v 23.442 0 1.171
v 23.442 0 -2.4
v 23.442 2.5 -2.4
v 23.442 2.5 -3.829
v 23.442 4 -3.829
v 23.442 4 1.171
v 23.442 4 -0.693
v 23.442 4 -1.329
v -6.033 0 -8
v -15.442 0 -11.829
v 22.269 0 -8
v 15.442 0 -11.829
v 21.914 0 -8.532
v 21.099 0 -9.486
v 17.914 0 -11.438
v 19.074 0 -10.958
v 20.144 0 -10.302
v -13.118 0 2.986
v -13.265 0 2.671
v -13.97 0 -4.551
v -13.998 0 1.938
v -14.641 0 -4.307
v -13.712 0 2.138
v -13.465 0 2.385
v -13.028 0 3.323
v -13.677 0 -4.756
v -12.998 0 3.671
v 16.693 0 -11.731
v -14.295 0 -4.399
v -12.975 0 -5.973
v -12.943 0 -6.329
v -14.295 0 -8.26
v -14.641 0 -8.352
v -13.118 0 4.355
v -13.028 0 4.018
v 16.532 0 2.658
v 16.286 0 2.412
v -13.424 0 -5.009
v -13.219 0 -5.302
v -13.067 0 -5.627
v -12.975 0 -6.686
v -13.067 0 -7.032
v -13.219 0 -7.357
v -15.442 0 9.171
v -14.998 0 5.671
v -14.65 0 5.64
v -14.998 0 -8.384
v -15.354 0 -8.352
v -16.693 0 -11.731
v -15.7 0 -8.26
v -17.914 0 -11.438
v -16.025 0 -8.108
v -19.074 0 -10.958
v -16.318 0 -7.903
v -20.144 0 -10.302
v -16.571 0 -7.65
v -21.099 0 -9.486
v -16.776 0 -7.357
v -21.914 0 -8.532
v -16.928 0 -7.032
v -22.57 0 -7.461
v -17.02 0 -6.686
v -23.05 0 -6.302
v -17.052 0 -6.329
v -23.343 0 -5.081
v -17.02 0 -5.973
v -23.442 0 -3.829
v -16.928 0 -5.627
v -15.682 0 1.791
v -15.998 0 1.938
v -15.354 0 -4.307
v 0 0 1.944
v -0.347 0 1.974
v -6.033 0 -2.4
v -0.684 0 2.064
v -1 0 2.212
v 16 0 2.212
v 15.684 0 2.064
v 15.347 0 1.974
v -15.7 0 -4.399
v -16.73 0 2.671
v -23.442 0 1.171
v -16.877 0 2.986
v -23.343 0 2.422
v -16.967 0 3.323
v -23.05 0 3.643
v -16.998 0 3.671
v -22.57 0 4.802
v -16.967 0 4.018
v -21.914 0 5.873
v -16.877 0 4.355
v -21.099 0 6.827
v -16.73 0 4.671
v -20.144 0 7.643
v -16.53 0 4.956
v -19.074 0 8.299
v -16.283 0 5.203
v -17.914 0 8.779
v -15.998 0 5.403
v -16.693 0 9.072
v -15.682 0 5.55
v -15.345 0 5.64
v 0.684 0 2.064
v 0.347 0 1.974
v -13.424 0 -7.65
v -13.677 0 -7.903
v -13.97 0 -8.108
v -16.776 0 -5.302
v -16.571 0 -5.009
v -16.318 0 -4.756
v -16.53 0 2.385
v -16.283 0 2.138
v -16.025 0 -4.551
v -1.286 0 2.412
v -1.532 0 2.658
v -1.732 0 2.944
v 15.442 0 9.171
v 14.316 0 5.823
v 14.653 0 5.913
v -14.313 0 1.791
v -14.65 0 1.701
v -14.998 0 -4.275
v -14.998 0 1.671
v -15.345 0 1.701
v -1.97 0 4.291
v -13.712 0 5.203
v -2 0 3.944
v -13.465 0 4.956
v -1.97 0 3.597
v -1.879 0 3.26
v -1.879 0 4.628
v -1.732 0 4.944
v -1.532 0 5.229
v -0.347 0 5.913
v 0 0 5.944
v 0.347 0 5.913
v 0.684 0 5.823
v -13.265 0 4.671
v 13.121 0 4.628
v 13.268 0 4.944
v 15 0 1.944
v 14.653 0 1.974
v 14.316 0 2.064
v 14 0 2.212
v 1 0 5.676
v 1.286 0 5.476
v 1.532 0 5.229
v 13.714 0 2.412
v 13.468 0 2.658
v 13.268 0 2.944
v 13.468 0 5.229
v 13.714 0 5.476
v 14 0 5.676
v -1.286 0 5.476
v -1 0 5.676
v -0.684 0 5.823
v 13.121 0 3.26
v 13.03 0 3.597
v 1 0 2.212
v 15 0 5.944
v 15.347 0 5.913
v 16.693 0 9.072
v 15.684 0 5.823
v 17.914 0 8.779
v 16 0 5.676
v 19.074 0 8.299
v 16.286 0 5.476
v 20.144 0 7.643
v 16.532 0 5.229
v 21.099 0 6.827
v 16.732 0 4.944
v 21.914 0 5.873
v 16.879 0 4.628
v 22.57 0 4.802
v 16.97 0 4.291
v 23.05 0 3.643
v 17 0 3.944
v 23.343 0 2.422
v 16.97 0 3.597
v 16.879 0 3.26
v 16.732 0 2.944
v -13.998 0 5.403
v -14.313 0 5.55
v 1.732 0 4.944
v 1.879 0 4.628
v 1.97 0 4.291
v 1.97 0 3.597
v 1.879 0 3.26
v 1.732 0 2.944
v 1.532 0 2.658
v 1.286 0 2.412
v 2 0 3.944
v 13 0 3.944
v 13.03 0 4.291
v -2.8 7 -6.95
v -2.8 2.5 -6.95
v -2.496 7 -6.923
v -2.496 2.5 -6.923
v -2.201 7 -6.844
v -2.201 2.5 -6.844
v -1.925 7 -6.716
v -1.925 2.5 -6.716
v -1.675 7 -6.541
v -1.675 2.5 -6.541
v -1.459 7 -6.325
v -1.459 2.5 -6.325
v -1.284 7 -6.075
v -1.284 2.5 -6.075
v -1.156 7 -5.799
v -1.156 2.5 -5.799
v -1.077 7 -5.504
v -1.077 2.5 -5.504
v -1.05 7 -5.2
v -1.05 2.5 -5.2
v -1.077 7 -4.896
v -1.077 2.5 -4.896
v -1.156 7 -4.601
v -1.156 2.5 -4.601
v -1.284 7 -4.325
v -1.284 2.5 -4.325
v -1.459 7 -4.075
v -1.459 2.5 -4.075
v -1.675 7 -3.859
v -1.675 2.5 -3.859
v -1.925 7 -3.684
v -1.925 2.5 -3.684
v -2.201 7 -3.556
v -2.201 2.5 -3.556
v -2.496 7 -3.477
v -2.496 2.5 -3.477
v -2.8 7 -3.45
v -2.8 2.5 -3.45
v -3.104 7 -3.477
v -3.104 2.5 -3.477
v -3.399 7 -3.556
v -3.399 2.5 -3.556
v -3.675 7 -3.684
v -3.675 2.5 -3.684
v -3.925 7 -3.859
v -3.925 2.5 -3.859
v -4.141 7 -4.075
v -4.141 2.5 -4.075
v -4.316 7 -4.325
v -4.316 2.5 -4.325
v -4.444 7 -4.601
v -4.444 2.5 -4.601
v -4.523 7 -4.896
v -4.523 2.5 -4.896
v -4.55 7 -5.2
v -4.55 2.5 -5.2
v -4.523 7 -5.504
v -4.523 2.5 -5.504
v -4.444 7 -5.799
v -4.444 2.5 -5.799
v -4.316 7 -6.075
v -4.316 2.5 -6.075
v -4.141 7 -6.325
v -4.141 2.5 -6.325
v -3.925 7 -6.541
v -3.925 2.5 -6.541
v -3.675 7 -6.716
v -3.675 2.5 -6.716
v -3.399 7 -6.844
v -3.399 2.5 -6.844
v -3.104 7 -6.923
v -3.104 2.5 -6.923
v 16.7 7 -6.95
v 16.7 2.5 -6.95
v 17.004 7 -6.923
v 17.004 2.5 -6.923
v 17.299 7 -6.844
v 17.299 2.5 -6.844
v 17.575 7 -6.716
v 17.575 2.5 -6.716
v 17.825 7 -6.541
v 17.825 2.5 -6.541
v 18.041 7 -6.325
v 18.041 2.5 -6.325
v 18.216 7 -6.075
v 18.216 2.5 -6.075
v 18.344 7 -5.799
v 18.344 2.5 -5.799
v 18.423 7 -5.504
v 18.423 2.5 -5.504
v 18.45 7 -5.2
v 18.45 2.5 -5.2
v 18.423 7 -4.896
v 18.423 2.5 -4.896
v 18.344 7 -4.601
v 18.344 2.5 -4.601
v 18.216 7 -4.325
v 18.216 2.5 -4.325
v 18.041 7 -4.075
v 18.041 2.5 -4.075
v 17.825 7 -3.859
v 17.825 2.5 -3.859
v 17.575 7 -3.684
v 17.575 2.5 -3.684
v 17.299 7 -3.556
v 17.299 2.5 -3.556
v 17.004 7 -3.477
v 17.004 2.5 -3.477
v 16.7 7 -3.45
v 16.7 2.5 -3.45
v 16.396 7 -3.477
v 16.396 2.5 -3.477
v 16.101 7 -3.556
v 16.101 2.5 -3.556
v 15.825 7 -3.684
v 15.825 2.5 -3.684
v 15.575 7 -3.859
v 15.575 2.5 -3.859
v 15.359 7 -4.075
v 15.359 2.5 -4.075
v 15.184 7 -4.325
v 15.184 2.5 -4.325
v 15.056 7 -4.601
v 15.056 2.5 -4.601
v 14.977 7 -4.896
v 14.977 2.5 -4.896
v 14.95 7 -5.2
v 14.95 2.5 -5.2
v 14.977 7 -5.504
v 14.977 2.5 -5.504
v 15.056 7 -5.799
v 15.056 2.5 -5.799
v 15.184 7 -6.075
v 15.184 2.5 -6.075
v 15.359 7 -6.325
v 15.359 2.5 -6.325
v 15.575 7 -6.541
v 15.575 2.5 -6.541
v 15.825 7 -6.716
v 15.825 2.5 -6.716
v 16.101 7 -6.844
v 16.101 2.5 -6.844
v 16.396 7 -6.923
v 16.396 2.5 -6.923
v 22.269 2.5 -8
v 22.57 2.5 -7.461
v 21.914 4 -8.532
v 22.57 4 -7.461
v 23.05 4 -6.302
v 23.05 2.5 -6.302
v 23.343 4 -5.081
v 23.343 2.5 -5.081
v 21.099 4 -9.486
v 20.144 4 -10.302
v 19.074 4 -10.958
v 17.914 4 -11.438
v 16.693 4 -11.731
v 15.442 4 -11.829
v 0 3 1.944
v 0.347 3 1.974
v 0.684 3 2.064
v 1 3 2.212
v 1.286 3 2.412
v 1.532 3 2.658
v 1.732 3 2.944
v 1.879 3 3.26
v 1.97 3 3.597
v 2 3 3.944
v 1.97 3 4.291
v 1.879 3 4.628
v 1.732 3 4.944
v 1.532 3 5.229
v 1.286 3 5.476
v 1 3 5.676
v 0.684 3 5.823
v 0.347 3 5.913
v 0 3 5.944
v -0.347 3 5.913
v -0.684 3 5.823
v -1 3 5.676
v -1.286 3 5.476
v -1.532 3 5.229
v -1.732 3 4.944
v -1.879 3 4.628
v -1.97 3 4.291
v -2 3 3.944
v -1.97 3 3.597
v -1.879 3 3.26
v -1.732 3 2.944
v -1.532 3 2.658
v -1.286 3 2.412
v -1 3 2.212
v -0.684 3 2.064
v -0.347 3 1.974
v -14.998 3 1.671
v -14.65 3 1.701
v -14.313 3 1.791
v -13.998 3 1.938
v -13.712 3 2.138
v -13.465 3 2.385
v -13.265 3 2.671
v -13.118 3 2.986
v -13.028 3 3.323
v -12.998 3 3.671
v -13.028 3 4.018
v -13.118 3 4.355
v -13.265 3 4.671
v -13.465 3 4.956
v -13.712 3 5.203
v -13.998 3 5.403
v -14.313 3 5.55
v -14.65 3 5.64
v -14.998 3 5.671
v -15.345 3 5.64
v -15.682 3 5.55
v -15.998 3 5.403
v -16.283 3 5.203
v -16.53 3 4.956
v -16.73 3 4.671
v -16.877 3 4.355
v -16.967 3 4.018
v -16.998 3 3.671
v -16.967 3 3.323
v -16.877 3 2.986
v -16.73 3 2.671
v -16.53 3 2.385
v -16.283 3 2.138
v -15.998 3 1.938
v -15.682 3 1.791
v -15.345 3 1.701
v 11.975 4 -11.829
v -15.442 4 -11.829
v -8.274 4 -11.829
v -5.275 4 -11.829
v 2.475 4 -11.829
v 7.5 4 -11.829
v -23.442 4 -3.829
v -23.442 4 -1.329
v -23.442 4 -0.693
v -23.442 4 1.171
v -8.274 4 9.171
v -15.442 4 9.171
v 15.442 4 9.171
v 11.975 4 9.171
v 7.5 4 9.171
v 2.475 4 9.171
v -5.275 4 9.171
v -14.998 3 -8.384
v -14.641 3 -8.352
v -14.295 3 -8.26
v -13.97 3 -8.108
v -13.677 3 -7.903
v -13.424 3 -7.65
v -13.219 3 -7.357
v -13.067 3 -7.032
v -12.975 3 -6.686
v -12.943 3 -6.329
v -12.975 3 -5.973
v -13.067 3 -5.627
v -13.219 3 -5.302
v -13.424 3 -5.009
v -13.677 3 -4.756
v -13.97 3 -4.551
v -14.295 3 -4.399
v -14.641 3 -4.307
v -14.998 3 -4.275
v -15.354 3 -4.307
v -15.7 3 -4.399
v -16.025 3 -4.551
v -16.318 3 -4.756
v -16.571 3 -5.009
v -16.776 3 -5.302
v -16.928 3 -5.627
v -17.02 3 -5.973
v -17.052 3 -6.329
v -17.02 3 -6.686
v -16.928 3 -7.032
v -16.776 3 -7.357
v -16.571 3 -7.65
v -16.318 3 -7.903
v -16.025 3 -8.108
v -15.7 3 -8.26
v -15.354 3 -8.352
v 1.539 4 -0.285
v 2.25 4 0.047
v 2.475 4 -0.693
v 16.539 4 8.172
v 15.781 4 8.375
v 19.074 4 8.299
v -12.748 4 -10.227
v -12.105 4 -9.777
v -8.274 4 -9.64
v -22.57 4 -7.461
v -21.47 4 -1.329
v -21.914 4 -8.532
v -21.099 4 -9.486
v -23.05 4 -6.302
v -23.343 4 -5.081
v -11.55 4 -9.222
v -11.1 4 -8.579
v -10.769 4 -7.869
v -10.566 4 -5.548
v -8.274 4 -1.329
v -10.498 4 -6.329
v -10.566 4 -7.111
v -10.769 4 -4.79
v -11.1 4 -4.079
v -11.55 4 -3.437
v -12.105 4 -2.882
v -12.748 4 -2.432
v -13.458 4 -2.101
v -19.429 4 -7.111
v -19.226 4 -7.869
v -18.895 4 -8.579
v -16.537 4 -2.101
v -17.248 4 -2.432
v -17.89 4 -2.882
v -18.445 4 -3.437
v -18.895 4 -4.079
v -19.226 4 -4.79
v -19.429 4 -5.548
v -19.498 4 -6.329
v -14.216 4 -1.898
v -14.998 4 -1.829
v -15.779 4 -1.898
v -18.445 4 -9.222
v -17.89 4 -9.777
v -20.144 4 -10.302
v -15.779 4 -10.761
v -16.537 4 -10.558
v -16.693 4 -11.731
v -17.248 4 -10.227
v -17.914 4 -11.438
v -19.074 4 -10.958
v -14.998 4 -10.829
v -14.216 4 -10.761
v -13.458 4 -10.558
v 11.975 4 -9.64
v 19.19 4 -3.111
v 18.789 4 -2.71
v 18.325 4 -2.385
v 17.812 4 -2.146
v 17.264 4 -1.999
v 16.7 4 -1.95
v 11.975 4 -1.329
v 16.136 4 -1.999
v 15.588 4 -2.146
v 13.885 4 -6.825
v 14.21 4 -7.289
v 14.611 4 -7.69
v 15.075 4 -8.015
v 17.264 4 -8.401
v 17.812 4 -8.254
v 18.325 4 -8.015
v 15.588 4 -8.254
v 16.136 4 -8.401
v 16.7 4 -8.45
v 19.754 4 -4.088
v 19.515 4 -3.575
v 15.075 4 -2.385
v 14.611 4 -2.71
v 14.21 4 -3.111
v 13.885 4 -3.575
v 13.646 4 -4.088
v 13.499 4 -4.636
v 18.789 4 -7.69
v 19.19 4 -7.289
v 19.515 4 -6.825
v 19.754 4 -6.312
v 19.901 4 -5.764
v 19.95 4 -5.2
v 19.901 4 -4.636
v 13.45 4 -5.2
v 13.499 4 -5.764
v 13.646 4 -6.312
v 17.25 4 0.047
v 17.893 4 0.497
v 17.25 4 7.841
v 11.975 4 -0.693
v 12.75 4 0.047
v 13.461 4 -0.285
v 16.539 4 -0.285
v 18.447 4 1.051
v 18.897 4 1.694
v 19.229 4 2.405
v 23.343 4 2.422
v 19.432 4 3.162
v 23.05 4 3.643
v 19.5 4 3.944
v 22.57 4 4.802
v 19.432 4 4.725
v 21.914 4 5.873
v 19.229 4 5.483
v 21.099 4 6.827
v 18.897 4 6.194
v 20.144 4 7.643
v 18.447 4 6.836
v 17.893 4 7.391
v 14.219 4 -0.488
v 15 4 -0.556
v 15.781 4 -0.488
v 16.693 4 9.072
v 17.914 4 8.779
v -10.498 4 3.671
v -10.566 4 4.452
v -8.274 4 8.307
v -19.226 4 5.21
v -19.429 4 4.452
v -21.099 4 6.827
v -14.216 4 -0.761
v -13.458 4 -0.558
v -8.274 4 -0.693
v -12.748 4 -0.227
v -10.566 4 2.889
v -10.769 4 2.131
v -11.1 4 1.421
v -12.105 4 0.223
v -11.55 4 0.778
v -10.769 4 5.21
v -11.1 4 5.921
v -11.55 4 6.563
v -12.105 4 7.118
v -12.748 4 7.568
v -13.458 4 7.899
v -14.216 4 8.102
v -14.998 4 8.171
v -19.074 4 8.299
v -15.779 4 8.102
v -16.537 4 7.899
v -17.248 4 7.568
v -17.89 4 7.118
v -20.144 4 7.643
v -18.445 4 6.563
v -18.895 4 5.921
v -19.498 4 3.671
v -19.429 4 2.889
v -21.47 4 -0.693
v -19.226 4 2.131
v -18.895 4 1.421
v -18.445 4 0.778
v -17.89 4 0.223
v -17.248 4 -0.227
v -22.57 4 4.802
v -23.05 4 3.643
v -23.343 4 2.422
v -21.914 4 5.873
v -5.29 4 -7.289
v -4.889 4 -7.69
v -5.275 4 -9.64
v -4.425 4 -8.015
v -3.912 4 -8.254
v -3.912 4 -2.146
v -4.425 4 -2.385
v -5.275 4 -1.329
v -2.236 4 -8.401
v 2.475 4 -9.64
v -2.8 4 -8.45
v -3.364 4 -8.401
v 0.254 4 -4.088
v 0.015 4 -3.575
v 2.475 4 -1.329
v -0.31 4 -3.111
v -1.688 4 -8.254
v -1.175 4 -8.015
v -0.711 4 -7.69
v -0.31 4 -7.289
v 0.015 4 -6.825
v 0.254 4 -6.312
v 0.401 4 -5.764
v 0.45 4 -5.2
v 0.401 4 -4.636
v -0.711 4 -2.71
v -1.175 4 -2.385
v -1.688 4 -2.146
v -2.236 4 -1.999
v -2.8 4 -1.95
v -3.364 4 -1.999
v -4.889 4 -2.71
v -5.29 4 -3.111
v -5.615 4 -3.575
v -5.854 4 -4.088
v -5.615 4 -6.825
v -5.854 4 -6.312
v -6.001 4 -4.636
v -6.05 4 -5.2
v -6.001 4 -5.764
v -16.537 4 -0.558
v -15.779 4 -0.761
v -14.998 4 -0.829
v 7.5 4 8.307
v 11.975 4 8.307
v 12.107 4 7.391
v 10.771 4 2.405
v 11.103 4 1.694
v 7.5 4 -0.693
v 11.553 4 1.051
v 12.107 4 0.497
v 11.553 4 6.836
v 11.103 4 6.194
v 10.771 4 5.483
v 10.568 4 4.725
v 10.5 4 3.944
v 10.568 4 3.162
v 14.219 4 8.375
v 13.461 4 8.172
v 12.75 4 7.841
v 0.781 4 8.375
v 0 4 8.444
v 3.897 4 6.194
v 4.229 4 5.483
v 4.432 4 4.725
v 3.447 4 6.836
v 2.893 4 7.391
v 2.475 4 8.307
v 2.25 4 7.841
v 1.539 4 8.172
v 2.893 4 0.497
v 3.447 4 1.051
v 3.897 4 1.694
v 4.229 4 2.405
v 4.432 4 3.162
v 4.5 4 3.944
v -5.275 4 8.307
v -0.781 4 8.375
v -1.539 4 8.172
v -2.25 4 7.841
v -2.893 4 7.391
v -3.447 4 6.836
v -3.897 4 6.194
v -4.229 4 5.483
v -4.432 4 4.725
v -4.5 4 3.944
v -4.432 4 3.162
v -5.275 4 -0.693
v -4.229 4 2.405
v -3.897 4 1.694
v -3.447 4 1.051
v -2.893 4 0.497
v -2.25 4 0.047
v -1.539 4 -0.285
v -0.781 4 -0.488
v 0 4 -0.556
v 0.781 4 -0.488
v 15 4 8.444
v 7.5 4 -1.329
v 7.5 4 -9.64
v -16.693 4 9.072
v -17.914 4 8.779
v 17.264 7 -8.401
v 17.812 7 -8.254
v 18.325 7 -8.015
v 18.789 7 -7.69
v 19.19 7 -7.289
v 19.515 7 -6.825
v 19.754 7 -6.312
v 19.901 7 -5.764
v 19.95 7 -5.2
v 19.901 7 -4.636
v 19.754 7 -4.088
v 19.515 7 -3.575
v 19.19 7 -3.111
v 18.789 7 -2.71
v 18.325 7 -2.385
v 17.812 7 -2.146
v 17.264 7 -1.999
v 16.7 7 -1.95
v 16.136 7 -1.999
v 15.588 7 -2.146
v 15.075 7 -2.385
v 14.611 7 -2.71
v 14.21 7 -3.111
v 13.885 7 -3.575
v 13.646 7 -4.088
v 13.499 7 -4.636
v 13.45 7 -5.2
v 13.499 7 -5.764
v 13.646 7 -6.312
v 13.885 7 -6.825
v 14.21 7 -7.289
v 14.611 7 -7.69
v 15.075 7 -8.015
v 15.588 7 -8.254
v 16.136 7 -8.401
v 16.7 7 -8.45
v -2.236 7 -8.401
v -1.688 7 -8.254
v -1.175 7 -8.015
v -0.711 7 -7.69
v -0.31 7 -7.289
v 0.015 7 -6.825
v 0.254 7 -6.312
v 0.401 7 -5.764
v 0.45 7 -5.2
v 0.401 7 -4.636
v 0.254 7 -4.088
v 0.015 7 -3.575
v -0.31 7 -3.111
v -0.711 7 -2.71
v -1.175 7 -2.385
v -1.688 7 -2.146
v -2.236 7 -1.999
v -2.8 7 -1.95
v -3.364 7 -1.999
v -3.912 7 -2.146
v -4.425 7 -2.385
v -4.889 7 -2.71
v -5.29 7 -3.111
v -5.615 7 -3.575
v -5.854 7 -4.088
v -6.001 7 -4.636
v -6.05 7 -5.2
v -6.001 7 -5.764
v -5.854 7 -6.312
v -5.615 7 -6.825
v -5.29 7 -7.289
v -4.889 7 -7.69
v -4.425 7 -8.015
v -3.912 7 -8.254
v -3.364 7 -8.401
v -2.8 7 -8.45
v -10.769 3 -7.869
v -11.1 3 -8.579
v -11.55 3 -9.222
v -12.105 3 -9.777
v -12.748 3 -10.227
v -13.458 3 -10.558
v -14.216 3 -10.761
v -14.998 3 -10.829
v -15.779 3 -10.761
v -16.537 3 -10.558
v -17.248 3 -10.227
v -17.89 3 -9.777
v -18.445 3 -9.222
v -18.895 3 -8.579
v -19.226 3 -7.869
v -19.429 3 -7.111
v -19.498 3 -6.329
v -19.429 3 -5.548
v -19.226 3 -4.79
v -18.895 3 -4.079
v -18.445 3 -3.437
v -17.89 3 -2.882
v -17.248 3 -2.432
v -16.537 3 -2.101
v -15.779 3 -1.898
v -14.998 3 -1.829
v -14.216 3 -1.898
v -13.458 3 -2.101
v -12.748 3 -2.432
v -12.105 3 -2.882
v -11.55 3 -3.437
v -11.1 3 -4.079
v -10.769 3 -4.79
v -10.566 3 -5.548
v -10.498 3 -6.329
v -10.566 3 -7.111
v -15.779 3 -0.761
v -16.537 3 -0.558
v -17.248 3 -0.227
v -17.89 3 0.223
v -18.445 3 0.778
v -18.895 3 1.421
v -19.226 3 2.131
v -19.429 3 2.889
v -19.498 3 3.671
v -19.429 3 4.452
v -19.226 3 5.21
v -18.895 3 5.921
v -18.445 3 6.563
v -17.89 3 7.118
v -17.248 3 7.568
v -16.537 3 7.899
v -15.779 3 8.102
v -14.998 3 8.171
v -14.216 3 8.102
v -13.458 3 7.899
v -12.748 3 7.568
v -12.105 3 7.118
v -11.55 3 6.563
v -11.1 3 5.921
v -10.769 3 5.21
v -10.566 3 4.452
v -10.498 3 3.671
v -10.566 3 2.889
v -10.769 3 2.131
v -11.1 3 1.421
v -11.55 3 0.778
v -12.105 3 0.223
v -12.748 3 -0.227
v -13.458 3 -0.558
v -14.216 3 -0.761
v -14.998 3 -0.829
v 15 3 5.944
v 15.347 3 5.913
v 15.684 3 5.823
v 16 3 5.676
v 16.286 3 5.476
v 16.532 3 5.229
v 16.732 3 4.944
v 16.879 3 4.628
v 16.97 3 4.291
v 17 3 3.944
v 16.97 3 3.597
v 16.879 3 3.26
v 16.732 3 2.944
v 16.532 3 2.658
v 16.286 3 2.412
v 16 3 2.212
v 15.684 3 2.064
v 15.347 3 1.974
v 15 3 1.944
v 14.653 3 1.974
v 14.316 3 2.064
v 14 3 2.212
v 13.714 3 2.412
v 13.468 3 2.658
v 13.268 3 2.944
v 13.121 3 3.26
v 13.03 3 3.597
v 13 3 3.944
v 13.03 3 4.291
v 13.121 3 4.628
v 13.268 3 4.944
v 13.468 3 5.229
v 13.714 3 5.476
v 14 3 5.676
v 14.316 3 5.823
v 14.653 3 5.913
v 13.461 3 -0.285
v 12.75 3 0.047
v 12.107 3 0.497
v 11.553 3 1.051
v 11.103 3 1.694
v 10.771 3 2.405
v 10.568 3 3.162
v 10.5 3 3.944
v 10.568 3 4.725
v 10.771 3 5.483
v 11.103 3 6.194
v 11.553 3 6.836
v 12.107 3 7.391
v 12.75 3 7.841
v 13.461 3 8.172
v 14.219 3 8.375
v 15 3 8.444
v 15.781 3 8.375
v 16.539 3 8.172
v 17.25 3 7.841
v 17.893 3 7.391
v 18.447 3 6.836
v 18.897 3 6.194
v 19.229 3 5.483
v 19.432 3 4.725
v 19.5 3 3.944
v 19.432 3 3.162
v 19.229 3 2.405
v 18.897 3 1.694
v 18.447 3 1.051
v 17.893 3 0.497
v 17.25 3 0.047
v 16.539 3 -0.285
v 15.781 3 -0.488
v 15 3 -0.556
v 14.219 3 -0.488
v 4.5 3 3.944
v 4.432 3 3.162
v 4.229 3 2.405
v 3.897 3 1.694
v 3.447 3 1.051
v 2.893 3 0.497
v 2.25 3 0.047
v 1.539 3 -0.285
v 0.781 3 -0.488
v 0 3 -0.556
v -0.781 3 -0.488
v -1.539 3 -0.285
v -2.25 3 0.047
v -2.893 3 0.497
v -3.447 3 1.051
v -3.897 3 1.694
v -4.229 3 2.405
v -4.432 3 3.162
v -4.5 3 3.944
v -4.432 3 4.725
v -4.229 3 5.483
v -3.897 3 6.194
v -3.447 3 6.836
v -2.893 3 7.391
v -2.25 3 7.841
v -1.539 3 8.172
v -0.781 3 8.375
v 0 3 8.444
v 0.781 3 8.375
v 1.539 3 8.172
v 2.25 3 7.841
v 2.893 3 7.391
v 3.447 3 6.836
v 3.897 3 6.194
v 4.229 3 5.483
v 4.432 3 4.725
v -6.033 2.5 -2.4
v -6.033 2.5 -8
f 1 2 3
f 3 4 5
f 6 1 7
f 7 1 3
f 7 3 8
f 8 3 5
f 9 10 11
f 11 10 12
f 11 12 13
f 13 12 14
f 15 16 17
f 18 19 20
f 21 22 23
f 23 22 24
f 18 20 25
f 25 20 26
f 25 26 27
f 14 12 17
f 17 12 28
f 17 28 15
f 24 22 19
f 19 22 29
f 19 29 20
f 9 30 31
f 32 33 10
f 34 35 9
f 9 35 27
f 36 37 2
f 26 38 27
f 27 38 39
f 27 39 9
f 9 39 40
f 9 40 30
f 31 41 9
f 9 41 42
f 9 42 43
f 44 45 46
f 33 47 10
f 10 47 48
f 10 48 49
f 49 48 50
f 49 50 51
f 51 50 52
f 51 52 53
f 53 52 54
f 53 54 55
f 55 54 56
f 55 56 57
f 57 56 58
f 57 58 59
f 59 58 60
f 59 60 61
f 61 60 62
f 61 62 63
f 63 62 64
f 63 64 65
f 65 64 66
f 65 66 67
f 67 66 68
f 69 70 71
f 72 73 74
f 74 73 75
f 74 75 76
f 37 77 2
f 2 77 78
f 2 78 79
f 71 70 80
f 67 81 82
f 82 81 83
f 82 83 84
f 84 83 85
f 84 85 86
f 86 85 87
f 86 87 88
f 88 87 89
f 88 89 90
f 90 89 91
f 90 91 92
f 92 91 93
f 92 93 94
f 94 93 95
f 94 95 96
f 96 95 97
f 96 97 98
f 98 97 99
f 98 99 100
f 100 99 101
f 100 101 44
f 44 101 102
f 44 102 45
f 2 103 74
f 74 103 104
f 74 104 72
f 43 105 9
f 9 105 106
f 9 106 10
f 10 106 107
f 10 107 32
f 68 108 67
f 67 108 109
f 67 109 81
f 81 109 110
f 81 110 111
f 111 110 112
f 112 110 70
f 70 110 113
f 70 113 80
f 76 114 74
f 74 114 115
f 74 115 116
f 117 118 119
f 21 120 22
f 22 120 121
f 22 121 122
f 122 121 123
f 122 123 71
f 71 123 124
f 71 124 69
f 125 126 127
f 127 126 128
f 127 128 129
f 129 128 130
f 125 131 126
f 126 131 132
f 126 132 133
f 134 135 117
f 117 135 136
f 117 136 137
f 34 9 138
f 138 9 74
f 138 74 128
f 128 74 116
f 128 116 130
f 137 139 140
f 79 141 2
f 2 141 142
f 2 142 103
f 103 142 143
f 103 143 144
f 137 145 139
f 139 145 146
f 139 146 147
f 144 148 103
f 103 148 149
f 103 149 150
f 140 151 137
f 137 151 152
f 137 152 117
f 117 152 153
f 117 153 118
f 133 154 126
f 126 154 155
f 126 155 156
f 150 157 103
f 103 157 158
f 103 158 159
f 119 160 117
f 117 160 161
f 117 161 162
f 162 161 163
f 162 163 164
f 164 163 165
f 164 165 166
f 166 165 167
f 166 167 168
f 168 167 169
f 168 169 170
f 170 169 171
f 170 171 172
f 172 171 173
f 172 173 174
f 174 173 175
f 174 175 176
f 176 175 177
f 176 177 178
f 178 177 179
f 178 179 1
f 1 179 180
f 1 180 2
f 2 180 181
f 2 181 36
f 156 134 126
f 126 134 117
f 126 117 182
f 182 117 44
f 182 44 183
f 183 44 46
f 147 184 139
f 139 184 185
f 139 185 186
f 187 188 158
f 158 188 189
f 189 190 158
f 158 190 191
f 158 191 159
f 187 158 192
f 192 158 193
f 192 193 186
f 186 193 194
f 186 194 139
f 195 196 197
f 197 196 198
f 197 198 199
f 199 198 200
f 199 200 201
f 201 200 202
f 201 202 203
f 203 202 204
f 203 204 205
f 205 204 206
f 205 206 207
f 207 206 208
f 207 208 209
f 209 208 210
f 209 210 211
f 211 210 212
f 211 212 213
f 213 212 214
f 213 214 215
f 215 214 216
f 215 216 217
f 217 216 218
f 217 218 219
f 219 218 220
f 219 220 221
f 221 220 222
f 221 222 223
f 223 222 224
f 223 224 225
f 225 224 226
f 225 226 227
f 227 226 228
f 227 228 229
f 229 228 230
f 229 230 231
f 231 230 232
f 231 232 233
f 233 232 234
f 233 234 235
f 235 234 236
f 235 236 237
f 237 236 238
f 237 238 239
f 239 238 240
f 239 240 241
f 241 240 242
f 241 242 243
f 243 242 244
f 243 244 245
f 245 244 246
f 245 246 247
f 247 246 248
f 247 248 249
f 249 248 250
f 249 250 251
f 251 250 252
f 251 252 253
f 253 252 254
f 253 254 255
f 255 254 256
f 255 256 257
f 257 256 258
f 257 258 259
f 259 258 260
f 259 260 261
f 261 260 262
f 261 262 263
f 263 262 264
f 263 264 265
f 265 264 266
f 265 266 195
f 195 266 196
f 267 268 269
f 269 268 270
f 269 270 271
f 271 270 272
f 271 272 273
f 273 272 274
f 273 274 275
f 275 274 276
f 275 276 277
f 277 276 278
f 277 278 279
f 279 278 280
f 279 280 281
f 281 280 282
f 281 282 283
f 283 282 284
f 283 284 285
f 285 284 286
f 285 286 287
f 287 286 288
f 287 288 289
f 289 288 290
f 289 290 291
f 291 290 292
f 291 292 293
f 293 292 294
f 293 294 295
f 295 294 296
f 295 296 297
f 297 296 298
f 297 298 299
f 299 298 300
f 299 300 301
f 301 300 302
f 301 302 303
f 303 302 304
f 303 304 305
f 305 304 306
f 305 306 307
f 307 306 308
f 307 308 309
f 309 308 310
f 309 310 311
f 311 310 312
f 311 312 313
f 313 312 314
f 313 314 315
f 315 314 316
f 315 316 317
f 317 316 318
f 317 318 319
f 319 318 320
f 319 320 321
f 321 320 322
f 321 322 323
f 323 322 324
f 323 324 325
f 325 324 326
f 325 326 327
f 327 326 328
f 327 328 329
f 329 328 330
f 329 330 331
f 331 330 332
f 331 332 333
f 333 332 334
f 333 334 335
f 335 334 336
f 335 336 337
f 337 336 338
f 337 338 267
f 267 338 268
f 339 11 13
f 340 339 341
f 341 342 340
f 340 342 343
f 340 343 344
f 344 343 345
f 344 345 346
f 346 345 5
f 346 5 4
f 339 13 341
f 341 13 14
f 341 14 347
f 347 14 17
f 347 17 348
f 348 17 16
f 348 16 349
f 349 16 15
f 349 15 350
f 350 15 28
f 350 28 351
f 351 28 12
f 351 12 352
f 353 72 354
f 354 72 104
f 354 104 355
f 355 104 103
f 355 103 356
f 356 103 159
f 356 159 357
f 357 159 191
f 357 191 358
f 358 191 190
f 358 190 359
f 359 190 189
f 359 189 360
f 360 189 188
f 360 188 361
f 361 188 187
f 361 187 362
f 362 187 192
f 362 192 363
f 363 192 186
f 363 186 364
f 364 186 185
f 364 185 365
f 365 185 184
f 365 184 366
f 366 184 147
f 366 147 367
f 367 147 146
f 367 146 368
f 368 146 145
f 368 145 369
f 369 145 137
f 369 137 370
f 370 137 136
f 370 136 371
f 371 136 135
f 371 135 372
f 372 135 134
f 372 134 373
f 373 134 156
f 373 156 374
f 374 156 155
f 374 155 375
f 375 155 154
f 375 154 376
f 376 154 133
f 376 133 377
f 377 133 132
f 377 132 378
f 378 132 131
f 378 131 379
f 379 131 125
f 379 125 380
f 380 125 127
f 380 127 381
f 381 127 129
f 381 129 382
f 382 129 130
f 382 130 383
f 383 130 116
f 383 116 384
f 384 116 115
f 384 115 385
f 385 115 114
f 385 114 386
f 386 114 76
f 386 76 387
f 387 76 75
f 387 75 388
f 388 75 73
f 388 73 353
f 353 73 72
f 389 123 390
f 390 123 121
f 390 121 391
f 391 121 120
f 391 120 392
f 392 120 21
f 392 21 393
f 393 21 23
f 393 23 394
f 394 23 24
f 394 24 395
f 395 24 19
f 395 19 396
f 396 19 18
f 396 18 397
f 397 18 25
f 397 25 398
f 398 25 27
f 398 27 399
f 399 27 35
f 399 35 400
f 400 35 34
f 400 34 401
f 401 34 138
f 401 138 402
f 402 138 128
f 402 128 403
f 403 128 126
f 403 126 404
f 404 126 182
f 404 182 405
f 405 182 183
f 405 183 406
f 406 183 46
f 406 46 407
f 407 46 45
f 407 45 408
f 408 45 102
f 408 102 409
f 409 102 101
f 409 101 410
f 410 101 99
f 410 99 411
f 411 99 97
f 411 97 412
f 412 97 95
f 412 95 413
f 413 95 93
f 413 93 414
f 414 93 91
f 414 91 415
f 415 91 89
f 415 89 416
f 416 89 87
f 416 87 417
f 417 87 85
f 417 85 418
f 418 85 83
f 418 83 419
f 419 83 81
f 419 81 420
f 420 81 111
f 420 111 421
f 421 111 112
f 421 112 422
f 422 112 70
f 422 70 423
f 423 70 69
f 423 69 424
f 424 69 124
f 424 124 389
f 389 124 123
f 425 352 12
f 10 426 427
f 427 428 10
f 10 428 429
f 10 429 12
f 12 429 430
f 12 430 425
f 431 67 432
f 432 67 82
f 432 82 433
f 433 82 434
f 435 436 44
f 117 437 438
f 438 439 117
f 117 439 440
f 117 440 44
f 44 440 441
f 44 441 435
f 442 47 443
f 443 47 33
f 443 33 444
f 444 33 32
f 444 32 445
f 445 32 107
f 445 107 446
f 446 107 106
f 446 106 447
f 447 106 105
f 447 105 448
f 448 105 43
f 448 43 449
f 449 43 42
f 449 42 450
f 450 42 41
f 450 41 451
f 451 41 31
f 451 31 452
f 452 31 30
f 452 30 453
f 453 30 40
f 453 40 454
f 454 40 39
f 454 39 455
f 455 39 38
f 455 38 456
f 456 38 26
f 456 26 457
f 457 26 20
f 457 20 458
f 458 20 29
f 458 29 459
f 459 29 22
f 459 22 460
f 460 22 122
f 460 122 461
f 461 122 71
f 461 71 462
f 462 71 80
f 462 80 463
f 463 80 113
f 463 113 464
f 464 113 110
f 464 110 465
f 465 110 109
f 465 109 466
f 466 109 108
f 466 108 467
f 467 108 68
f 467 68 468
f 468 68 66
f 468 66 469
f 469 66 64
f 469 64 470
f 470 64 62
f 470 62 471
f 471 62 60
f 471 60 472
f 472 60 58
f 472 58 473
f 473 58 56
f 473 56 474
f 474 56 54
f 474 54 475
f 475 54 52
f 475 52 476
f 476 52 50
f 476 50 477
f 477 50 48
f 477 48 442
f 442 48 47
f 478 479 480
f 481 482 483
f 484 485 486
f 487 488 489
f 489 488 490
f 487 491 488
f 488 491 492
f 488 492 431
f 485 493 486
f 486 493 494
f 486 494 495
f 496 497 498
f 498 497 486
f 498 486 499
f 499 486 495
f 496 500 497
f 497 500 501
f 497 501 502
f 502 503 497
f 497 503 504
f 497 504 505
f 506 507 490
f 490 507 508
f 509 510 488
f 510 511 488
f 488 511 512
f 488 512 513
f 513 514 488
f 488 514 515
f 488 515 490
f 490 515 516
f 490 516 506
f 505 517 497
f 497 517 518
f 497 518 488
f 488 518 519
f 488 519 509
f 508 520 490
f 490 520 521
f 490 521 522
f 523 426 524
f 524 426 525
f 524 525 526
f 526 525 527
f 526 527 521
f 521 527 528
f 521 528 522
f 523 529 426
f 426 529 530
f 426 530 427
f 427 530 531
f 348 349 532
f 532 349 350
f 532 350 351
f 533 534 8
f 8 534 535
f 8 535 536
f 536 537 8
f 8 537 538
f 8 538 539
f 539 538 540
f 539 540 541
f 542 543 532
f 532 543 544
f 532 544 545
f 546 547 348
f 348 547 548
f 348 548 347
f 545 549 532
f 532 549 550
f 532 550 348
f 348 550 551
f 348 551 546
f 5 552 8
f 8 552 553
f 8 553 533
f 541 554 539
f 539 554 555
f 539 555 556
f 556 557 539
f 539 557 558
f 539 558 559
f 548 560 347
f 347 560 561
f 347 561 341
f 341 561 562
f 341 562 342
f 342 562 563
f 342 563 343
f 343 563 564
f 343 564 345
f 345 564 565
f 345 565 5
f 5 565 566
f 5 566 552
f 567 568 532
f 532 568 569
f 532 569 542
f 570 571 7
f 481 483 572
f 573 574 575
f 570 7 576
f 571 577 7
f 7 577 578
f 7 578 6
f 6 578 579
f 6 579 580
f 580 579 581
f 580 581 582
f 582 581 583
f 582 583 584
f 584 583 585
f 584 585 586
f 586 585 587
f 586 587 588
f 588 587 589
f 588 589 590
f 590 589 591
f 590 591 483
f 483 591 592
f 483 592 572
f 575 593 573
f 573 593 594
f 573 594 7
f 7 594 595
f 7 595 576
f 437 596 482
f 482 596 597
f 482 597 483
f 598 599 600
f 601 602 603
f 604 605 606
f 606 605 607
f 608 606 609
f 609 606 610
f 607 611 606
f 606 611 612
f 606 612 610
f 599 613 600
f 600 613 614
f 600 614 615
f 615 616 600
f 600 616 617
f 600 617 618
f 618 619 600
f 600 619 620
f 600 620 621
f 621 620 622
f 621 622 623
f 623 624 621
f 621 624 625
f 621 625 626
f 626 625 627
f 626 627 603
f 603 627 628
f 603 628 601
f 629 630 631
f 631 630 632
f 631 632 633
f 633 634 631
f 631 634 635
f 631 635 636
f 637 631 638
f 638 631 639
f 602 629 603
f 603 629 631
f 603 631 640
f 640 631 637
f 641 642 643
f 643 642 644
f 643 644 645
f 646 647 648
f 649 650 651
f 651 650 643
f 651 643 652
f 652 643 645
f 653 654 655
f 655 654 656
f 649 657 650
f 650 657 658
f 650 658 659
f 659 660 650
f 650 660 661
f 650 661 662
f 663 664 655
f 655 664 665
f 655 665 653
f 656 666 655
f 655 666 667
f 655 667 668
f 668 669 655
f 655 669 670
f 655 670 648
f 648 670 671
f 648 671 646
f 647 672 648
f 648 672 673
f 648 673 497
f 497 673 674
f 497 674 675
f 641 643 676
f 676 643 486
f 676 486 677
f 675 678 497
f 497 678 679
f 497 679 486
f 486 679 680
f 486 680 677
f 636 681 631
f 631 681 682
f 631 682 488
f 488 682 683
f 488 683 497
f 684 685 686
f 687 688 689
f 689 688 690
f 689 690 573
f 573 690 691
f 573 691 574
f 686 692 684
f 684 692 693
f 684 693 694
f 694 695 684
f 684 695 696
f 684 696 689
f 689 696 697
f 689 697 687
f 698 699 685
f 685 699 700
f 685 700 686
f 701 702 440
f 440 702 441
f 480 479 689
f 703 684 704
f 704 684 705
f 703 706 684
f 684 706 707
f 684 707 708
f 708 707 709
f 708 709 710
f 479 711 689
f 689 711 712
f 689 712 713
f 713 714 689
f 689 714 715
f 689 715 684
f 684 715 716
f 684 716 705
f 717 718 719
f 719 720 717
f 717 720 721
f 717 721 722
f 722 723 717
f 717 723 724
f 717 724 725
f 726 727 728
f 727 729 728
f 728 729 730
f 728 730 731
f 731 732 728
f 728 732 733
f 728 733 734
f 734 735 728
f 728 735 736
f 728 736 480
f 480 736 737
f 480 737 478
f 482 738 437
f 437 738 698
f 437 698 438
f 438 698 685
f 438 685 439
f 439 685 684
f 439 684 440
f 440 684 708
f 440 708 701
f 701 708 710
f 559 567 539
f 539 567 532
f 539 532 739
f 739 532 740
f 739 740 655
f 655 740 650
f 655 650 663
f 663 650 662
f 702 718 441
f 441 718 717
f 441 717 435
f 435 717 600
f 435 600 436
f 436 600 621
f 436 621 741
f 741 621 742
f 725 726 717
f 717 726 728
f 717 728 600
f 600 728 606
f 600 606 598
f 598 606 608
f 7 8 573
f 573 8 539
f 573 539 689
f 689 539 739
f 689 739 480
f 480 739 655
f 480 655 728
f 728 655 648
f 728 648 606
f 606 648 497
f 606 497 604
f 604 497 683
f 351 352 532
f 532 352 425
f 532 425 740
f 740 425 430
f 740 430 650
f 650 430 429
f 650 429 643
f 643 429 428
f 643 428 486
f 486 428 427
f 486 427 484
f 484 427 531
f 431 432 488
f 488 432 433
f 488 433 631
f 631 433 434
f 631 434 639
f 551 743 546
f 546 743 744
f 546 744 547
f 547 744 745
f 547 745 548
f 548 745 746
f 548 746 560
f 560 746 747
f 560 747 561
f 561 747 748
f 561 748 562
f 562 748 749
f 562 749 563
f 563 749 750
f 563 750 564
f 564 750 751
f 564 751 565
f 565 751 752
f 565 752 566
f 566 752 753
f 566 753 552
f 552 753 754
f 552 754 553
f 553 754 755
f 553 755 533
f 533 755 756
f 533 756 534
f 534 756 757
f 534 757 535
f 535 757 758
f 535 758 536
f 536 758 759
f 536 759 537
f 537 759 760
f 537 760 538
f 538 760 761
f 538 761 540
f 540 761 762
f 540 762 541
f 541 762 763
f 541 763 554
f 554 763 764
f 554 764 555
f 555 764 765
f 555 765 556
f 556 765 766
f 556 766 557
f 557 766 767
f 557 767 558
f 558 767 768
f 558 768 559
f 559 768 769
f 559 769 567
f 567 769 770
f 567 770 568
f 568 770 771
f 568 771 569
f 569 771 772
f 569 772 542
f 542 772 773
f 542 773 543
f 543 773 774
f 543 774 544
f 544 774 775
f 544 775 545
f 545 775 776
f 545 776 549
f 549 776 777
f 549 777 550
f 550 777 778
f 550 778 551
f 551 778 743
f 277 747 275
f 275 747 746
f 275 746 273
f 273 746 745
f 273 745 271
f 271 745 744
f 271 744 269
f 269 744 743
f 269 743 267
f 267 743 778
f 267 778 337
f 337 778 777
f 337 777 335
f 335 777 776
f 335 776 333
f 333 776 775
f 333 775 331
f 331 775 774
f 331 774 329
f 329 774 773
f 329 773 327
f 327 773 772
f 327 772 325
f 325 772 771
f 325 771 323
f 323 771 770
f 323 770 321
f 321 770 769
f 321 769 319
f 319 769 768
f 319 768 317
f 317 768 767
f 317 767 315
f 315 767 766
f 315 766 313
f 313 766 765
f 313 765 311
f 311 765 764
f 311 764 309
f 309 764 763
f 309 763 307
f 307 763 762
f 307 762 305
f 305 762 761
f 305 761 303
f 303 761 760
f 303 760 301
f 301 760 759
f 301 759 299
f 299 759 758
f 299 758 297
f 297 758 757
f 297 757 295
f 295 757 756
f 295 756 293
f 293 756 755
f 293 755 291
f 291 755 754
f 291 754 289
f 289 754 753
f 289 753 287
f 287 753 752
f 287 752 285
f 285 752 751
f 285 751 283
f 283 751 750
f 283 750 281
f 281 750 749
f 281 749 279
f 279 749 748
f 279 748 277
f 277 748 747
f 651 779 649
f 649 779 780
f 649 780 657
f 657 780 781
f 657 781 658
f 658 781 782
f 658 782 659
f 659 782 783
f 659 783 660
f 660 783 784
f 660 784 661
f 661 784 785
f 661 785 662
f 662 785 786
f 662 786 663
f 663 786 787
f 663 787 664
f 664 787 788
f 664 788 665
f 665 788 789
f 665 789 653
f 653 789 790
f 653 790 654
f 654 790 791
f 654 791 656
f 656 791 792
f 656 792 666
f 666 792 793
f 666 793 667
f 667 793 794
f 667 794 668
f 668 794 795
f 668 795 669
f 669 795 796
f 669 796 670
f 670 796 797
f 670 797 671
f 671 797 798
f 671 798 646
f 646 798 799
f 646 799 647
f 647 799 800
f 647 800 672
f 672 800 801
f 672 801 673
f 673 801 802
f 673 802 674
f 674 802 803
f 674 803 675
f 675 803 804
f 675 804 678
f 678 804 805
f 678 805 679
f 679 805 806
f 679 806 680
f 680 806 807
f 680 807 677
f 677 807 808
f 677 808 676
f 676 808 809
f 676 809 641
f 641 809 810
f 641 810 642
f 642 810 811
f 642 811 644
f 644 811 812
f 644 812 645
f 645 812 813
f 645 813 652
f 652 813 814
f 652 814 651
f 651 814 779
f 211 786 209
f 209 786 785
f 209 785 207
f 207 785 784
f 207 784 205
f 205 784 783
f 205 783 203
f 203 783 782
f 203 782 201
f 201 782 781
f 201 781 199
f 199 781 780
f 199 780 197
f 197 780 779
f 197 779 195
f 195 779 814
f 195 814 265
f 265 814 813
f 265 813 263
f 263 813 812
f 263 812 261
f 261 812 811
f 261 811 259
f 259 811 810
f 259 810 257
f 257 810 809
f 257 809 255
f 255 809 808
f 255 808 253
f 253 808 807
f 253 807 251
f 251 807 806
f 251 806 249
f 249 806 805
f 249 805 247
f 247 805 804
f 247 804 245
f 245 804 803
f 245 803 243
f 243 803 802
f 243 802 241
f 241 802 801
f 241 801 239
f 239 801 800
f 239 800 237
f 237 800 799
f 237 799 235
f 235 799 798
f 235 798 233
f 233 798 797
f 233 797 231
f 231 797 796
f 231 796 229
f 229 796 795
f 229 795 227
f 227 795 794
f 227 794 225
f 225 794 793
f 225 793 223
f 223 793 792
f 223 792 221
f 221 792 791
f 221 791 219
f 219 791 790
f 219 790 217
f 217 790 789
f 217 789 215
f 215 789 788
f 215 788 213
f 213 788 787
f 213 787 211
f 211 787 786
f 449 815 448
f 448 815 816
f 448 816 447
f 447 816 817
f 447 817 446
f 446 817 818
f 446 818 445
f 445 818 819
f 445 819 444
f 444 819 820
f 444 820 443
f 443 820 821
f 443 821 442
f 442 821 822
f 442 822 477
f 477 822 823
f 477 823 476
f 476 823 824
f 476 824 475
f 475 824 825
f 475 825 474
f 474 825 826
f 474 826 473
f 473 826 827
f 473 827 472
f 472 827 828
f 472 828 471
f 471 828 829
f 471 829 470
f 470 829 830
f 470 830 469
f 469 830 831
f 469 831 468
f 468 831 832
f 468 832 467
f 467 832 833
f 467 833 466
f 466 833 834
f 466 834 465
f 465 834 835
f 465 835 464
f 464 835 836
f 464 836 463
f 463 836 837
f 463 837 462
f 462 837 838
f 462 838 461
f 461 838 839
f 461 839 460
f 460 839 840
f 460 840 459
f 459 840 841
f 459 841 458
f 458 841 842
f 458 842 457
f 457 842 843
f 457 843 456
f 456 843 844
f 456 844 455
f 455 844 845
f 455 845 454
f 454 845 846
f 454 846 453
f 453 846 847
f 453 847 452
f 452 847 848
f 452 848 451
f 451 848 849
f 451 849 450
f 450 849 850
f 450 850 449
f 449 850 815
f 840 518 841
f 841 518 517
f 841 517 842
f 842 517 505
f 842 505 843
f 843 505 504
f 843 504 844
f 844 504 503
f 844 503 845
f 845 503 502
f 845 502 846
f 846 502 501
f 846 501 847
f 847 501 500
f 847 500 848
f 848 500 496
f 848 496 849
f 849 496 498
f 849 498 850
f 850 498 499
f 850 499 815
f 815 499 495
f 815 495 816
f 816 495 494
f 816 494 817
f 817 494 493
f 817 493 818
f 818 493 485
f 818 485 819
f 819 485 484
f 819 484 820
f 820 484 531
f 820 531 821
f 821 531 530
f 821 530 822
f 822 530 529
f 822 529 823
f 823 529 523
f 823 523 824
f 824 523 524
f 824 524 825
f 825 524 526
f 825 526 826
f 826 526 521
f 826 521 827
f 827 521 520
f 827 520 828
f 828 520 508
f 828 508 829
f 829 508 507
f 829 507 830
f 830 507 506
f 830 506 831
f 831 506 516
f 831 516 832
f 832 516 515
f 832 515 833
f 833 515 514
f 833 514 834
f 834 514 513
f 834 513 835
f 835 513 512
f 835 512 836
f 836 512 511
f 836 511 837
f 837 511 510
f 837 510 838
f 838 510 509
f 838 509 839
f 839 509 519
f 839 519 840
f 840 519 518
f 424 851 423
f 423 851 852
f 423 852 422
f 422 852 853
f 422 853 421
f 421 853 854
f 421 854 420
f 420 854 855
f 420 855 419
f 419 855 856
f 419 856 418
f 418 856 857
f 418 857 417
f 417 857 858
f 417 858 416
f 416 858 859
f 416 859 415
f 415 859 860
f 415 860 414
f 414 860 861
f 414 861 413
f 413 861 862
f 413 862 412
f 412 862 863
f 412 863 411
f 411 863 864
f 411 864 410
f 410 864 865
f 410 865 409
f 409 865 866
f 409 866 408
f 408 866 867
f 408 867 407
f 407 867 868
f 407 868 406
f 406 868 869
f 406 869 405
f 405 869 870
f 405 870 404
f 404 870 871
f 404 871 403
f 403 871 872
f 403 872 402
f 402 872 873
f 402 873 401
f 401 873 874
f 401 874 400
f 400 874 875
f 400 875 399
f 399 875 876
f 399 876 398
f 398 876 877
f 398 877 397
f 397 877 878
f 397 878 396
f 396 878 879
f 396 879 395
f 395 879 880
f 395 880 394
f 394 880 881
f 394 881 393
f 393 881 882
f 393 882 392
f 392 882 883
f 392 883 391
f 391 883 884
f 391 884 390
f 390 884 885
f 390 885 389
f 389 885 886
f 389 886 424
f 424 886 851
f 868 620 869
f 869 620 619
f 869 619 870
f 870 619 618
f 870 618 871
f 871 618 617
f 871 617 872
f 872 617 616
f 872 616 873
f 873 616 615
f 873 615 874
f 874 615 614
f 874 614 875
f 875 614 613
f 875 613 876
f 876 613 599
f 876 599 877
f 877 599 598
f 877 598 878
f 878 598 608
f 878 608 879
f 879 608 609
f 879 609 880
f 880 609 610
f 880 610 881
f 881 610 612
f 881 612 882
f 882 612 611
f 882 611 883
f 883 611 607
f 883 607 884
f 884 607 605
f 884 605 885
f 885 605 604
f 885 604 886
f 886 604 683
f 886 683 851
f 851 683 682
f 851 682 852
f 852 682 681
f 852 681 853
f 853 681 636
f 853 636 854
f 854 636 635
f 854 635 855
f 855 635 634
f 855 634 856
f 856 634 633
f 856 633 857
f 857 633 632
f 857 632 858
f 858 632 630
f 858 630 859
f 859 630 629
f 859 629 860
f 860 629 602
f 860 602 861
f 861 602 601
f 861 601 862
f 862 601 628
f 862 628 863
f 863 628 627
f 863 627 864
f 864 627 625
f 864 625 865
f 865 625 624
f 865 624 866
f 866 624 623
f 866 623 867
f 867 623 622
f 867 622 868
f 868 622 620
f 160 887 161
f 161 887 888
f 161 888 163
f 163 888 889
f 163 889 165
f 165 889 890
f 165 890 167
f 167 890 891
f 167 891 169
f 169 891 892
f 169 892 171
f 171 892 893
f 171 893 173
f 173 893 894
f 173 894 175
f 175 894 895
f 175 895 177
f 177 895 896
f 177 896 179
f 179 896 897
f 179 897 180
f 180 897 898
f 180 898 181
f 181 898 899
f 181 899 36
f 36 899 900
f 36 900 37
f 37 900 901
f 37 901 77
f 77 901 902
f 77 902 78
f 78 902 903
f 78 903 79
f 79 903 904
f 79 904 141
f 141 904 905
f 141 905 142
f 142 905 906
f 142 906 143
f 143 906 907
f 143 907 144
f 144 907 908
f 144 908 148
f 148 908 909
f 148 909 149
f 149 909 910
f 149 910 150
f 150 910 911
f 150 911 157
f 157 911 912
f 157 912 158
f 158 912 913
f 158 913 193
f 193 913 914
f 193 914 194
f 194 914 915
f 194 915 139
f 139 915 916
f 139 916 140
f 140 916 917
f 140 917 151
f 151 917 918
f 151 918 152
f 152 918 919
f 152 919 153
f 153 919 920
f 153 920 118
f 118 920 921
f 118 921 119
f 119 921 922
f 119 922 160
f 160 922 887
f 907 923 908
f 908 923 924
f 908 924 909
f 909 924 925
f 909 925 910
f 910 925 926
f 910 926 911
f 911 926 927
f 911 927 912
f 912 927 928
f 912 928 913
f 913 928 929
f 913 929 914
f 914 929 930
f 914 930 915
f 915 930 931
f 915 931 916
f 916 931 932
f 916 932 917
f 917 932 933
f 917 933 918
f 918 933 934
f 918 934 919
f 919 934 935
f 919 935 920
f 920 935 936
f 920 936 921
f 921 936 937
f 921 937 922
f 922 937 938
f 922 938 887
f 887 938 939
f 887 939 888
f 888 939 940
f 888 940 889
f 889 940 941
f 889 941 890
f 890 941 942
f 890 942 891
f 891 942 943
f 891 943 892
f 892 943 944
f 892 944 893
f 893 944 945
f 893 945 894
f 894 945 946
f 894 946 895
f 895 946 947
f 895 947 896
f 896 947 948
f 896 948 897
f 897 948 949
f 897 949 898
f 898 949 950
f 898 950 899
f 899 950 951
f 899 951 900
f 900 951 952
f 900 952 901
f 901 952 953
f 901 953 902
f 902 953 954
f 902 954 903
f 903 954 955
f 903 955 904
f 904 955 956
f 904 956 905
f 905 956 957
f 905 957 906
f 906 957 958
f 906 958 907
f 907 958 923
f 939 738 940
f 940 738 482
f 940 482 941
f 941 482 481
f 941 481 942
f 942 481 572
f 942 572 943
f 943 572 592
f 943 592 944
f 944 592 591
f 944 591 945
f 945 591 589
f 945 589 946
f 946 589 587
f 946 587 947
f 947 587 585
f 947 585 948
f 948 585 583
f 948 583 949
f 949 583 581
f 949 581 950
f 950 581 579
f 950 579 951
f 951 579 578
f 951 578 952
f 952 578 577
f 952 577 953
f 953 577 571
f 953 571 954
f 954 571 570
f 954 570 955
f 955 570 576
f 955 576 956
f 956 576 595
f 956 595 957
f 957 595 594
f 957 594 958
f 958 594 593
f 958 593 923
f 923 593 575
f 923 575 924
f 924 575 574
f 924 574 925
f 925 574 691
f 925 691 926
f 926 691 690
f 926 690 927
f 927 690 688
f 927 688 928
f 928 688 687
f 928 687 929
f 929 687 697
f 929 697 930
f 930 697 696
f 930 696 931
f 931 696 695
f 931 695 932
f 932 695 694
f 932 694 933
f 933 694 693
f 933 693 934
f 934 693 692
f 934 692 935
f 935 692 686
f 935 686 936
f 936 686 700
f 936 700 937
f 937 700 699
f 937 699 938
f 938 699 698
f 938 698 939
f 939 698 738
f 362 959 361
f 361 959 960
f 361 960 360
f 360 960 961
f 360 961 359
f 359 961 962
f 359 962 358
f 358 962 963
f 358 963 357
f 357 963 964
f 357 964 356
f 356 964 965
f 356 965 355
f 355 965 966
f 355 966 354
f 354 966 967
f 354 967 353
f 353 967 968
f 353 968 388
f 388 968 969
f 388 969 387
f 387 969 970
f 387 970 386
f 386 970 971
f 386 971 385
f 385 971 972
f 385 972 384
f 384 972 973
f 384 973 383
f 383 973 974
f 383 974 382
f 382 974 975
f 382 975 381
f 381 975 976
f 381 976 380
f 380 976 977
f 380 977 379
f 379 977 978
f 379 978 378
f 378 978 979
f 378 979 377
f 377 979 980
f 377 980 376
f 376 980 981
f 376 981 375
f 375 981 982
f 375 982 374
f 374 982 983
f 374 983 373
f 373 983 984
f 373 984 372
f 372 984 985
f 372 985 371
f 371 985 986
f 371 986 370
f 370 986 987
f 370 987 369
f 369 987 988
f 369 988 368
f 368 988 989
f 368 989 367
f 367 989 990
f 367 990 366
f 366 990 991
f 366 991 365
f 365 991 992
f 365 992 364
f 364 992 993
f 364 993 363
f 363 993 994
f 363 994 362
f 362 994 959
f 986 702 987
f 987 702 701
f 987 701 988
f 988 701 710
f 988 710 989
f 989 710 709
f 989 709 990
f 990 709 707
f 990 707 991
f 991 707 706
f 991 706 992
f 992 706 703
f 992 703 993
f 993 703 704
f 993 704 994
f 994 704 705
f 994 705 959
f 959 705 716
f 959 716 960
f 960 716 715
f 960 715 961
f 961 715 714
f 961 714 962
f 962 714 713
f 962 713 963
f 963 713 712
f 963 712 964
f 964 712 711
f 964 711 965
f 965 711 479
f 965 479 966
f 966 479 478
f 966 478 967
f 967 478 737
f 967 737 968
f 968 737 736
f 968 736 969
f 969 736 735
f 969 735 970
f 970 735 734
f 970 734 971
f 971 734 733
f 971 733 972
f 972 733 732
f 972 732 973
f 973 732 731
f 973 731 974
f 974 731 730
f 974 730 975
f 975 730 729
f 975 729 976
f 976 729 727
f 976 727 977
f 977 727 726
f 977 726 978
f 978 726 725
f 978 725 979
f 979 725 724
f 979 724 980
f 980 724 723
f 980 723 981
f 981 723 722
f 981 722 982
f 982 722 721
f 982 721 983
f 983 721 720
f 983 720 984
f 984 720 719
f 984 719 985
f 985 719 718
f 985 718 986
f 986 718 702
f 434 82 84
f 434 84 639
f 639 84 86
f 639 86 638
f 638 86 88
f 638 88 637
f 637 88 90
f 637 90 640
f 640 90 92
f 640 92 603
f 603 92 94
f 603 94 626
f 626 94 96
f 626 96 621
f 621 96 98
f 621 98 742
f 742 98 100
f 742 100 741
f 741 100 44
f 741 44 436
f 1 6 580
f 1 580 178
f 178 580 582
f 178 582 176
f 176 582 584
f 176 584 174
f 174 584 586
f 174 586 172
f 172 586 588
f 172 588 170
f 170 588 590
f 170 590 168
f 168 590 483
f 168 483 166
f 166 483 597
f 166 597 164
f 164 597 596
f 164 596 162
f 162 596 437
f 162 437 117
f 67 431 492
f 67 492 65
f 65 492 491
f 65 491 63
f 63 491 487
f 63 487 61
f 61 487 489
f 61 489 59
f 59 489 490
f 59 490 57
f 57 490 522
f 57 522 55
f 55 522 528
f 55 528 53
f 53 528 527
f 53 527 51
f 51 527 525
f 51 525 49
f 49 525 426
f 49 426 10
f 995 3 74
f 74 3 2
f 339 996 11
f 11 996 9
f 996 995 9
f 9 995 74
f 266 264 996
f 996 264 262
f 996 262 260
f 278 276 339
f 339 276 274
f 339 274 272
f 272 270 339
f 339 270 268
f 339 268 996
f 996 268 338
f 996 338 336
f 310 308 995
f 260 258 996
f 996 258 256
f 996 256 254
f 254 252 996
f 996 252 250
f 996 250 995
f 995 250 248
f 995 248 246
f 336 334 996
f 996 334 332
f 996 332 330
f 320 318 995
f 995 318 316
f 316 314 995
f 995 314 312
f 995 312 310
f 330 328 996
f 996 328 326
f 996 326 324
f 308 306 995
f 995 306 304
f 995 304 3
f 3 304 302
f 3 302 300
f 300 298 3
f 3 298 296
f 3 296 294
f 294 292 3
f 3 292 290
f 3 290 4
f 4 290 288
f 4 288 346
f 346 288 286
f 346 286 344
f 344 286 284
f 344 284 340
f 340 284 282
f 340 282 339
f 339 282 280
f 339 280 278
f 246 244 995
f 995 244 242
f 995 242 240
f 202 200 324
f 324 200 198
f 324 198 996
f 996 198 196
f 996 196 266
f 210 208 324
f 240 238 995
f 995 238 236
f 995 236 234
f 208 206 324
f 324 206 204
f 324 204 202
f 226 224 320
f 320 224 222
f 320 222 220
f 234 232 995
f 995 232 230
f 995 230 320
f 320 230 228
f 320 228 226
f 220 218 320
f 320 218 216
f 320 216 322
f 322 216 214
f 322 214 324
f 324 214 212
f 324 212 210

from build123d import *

# Parameters (mm, degrees)
SKETCH2_W           = 46.883828082
SKETCH2_H           = 21
SKETCH2_R           = 2
SKETCH2_R_2         = 2.054050428
SKETCH2_R_3         = 3.25
BOSS_EXTRUDE2_DEPTH = 4
SKETCH2_2_R         = 3.25
BOSS_EXTRUDE3_DEPTH = 7
CUT_EXTRUDE1_REACH  = 9
SKETCH1_R           = 1.75
HOLE1_D             = 4
HOLE1_DEPTH         = 4
HOLE1_CBORE_D       = 9
HOLE1_CBORE_DEPTH   = 1
FILLET1_R           = 8
SKETCH6_R           = 1.75
CUT_EXTRUDE2_DEPTH  = 2.5


with BuildPart() as part:
    # Sketch2 → Boss-Extrude2 (new body)
    with BuildSketch(Plane(origin=(0, 0, 0), x_dir=(1, 0, 0), z_dir=(0, 1, 0))):
        with Locations((0, 1.329477691)):
            Rectangle(SKETCH2_W, SKETCH2_H)
        with Locations((-14.997509842, -3.670522309)):
            Circle(SKETCH2_R, mode=Mode.SUBTRACT)
        with Locations((-14.997509842, 6.329477691)):
            Circle(SKETCH2_R_2, mode=Mode.SUBTRACT)
        with Locations((-2.8, 5.2)):
            Circle(SKETCH2_R_3, mode=Mode.SUBTRACT)
        with Locations((0, -3.943832634)):
            Circle(SKETCH2_R, mode=Mode.SUBTRACT)
        with Locations((16.7, 5.2)):
            Circle(SKETCH2_R_3, mode=Mode.SUBTRACT)
    extrude(amount=BOSS_EXTRUDE2_DEPTH)

    # Sketch2<2> → Boss-Extrude3 (add)
    with BuildSketch(Plane(origin=(0, 0, 0), x_dir=(1, 0, 0), z_dir=(0, 1, 0))):
        with Locations((-2.8, 5.2)):
            Circle(SKETCH2_2_R)
        with Locations((16.7, 5.2)):
            Circle(SKETCH2_2_R)
    extrude(amount=BOSS_EXTRUDE3_DEPTH)

    # Sketch1 → Cut-Extrude1 (cut, up to next)
    with BuildSketch(Plane(origin=(0, 0, 0), x_dir=(1, 0, 0), z_dir=(0, 1, 0)), mode=Mode.PRIVATE) as cut_extrude1_sk1:
        with Locations((-2.8, 5.2)):
            Circle(SKETCH1_R)
    cut_extrude1_tool1 = extrude(cut_extrude1_sk1.sketch, amount=CUT_EXTRUDE1_REACH, mode=Mode.PRIVATE) & part.part
    add(cut_extrude1_tool1.solids().sort_by_distance((-2.8, 0, -5.2))[0], mode=Mode.SUBTRACT)
    # Sketch1 → Cut-Extrude1 (cut, up to next)
    with BuildSketch(Plane(origin=(0, 0, 0), x_dir=(1, 0, 0), z_dir=(0, 1, 0)), mode=Mode.PRIVATE) as cut_extrude1_sk2:
        with Locations((16.7, 5.2)):
            Circle(SKETCH1_R)
    cut_extrude1_tool2 = extrude(cut_extrude1_sk2.sketch, amount=CUT_EXTRUDE1_REACH, mode=Mode.PRIVATE) & part.part
    add(cut_extrude1_tool2.solids().sort_by_distance((16.7, 0, -5.2))[0], mode=Mode.SUBTRACT)

    # Hole1
    with Locations(Plane(origin=(0, 4, 0), x_dir=(1, 0, 0), z_dir=(0, 1, 0))):
        with Locations((0, -3.943832634), (15, -3.943832634), (-14.997509842, -3.670522309), (-14.997509842, 6.329477691)):
            CounterBoreHole(HOLE1_D / 2, HOLE1_CBORE_D / 2, HOLE1_CBORE_DEPTH, depth=HOLE1_DEPTH)

    # Fillet1
    fillet1_edges = [part.edges().sort_by_distance(p)[0] for p in [
        (23.441914041, 2, -11.829477691),
        (23.441914041, 2, 9.170522309),
        (-23.441914041, 2, 9.170522309),
        (-23.441914041, 2, -11.829477691),
    ]]
    fillet(fillet1_edges, radius=FILLET1_R)

    # Sketch6 → Cut-Extrude2 (cut)
    with BuildSketch(Plane.XZ):
        with BuildLine():
            Line((19.933161507, -5.2), (18.316580754, -8))
            Line((18.316580754, -8), (22.268827229, -8))
            ThreePointArc((22.268827229, -8), (23.143060238, -5.995660336), (23.441914041, -3.829477691))
            Line((23.441914041, -3.829477691), (23.441914041, -2.4))
            Line((23.441914041, -2.4), (18.316580754, -2.4))
            Line((18.316580754, -2.4), (19.933161507, -5.2))
        make_face()
        Polygon((13.466838493, -5.2), (15.083419246, -8), (18.316580754, -8), (19.933161507, -5.2), (18.316580754, -2.4), (15.083419246, -2.4), align=None)
        with Locations((16.7, -5.2)):
            Circle(SKETCH6_R, mode=Mode.SUBTRACT)
        Polygon((0.433161507, -5.2), (-1.183419246, -8), (15.083419246, -8), (13.466838493, -5.2), (15.083419246, -2.4), (-1.183419246, -2.4), align=None)
        Polygon((-4.416580754, -2.4), (-6.033161507, -5.2), (-4.416580754, -8), (-1.183419246, -8), (0.433161507, -5.2), (-1.183419246, -2.4), align=None)
        with Locations((-2.8, -5.2)):
            Circle(SKETCH6_R, mode=Mode.SUBTRACT)
        Polygon((-6.033161507, -2.4), (-6.033161507, -5.2), (-4.416580754, -2.4), align=None)
        Polygon((-6.033161507, -5.2), (-6.033161507, -8), (-4.416580754, -8), align=None)
    extrude(amount=-CUT_EXTRUDE2_DEPTH, mode=Mode.SUBTRACT)


solid = part.part
